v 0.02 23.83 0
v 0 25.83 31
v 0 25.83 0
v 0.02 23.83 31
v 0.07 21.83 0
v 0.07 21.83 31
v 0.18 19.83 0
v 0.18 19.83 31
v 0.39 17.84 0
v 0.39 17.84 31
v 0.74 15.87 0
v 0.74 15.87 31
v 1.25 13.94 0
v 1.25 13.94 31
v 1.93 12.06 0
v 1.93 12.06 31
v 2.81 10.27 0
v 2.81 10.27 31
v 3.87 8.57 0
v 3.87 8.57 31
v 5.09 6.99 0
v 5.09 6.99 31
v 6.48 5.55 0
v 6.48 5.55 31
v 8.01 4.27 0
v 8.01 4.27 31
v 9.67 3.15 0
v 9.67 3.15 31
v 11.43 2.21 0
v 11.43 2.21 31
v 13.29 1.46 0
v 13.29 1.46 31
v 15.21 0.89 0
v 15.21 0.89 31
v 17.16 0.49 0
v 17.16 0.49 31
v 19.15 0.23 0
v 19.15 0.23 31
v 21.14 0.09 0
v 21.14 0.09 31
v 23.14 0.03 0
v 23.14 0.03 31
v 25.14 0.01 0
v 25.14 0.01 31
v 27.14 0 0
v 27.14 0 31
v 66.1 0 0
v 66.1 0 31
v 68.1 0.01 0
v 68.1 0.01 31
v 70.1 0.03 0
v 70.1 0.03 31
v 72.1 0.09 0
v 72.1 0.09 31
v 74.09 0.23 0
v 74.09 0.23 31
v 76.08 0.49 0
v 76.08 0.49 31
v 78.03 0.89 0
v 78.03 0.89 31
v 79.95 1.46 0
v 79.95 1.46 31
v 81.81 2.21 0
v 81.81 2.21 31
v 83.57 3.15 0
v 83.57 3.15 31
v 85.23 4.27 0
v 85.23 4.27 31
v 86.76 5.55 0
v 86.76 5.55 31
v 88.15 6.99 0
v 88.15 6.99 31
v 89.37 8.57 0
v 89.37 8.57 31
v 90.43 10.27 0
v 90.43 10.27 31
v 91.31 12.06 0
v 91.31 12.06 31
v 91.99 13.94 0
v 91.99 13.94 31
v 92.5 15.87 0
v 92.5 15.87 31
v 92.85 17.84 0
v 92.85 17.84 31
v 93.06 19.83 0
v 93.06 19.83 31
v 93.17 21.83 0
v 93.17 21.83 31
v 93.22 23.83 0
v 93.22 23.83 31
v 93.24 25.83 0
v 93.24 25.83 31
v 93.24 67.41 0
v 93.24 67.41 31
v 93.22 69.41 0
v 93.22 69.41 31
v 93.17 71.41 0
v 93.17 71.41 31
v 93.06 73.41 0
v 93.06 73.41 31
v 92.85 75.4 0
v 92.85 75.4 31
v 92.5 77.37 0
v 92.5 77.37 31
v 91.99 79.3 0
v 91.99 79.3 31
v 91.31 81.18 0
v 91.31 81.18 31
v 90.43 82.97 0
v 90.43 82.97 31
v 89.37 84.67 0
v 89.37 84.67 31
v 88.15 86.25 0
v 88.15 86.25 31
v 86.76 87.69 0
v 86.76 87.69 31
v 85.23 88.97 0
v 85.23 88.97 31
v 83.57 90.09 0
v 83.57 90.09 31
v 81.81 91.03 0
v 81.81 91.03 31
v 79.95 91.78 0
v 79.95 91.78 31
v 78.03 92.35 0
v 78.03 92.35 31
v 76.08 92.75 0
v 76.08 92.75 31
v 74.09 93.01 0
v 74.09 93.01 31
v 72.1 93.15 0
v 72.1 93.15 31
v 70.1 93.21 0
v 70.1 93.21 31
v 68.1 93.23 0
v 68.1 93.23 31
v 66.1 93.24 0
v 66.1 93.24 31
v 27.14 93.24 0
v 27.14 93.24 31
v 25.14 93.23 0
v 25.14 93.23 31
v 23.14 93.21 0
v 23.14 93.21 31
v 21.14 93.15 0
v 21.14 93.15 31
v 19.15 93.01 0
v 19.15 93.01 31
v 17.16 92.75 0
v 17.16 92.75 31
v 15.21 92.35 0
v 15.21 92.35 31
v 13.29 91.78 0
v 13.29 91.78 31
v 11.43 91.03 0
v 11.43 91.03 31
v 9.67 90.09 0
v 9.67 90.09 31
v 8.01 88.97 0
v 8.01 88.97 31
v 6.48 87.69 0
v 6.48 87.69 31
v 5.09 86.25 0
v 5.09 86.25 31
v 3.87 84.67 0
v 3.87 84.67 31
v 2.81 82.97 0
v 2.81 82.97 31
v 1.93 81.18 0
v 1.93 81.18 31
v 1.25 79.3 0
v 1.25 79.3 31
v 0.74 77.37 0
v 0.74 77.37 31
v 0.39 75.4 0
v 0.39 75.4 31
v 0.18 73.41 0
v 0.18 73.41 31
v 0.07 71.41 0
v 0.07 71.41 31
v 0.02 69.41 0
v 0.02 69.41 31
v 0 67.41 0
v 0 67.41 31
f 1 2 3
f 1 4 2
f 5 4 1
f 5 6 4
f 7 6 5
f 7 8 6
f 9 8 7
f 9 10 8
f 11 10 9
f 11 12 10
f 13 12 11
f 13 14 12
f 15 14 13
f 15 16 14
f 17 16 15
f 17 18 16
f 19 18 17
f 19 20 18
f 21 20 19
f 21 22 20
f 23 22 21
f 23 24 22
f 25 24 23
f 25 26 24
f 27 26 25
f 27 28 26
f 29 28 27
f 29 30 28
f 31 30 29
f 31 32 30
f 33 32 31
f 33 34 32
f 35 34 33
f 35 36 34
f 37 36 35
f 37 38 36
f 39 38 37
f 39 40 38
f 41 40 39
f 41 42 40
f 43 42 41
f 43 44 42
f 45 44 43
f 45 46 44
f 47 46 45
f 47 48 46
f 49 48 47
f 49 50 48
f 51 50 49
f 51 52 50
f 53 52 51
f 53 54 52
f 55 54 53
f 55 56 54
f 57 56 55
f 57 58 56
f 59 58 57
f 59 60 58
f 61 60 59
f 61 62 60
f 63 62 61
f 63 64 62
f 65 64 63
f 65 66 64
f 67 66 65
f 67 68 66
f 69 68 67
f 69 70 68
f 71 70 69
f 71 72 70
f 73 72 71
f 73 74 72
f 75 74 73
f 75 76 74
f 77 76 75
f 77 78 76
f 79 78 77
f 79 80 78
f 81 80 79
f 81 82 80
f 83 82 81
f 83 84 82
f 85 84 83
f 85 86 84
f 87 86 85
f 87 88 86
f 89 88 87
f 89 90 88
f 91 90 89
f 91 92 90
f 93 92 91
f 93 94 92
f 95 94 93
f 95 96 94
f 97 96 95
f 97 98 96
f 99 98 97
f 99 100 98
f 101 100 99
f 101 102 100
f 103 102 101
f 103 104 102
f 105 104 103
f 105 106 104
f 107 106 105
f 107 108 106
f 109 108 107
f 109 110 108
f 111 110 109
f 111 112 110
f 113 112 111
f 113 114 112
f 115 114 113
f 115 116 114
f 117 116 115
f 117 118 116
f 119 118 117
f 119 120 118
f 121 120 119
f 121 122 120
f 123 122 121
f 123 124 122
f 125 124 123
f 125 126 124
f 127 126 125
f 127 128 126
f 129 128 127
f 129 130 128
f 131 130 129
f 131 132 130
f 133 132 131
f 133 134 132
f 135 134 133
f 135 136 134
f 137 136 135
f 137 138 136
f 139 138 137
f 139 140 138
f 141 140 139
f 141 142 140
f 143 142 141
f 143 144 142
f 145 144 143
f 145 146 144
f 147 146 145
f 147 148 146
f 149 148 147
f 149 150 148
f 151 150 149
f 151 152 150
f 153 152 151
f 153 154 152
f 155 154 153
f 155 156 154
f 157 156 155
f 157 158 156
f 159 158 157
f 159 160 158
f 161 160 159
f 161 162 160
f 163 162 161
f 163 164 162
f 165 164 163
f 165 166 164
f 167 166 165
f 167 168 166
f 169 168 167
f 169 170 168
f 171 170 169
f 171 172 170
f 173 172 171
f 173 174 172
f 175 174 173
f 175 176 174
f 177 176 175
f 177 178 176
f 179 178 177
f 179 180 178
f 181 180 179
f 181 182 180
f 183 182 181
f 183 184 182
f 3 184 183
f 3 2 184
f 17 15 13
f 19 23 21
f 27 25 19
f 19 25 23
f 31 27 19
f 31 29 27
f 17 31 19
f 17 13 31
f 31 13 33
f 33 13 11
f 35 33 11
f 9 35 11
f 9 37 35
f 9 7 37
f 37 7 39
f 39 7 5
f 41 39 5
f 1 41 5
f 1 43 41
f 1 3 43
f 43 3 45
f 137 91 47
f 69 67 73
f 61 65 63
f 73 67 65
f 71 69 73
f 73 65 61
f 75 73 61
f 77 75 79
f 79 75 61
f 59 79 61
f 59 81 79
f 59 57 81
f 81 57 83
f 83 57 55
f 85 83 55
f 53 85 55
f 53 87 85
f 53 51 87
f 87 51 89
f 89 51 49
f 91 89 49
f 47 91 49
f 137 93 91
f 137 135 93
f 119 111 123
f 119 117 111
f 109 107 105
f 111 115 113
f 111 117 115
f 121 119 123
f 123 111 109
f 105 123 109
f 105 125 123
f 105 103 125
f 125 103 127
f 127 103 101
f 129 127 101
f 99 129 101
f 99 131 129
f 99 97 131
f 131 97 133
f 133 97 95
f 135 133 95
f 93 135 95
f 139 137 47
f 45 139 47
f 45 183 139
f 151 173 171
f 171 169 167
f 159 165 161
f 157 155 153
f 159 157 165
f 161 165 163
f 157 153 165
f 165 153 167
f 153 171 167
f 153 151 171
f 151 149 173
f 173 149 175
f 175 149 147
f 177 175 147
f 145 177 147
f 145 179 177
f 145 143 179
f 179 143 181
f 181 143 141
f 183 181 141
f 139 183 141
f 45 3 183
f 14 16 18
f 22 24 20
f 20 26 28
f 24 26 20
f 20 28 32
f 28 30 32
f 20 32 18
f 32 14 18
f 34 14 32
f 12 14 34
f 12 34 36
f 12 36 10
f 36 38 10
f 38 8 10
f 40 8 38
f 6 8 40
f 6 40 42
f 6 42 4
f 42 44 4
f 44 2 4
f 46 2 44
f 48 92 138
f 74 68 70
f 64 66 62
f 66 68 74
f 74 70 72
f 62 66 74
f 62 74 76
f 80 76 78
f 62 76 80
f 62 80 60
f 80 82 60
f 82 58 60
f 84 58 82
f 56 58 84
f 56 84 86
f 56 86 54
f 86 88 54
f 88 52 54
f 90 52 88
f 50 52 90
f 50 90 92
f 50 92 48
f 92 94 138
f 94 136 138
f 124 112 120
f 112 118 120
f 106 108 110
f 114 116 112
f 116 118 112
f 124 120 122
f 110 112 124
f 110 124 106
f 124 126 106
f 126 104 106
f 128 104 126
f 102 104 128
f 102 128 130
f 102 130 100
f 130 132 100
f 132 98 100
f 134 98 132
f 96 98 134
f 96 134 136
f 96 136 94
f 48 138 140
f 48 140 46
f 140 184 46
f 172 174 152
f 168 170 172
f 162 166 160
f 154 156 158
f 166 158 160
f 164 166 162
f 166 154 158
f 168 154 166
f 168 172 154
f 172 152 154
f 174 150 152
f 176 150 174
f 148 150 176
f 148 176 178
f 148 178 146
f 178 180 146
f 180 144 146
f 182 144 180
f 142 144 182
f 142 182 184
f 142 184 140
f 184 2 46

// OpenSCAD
// Basic shape of an AppleTV. Excluding the chamfered base

print_tolerance = 0.0;

base_size = 93.24 + print_tolerance; // Length of the sides of the square
corner_offset = 27.14;               // Maximum offset for the corner curve
extrude_height = 31;

// Define the points for one corner in clockwise order
corner_points = [
	[ 0.00, 0.00 ],   [ 2.00, 0.01 ],   [ 4.00, 0.03 ],   [ 6.00, 0.09 ],   [ 7.99, 0.23 ],   [ 9.98, 0.49 ],
	[ 11.93, 0.89 ],  [ 13.85, 1.46 ],  [ 15.71, 2.21 ],  [ 17.47, 3.15 ],  [ 19.13, 4.27 ],  [ 20.66, 5.55 ],
	[ 22.05, 6.99 ],  [ 23.27, 8.57 ],  [ 24.33, 10.27 ], [ 25.21, 12.06 ], [ 25.89, 13.94 ], [ 26.40, 15.87 ],
	[ 26.75, 17.84 ], [ 26.96, 19.83 ], [ 27.07, 21.83 ], [ 27.12, 23.83 ], [ 27.14, 25.83 ]
];

// Function to offset and flip points correctly for each corner
function transform_corner(points, offset_x, offset_y, flip_x = false, flip_y = false) =
    [for (p = points)[(flip_x ? offset_x - p[0] : p[0] + offset_x), (flip_y ? offset_y - p[1] : p[1] + offset_y)]];

// Draw each corner separately for debugging
module corner1()
{
	polygon(points = transform_corner(corner_points, base_size - corner_offset, 0));
}

module corner2()
{
	polygon(points = transform_corner(corner_points, corner_offset, 0, flip_x = true));
}

module corner3()
{
	polygon(points = transform_corner(corner_points, corner_offset, base_size, true, true));
}

module corner4()
{
	polygon(points = transform_corner(corner_points, base_size - corner_offset, base_size, flip_y = true));
}

// Draw each corner and fill the sides separately
module sides_and_corners()
{
	// Fill horizontal and vertical edges between corners
	hull()
	{
	polygon(points = transform_corner(corner_points, base_size - corner_offset, 0));
		//corner1(); // Bottom-right corner
		corner2(); // Bottom-left corner
		corner3(); // Top-left corner
		corner4(); // Top-right corner
	}
}

// Extrude the filled shape down by the specified height
module extruded_shape()
{
	linear_extrude(height = extrude_height)
	{
		sides_and_corners();
	}
}

// Render the extruded shape
extruded_shape();

/*
difference()
{
	translate([ -1.5, -1.5, 0.1 ])
	cube([ 97, 97, 2 ]);
	extruded_shape();
}
*/
